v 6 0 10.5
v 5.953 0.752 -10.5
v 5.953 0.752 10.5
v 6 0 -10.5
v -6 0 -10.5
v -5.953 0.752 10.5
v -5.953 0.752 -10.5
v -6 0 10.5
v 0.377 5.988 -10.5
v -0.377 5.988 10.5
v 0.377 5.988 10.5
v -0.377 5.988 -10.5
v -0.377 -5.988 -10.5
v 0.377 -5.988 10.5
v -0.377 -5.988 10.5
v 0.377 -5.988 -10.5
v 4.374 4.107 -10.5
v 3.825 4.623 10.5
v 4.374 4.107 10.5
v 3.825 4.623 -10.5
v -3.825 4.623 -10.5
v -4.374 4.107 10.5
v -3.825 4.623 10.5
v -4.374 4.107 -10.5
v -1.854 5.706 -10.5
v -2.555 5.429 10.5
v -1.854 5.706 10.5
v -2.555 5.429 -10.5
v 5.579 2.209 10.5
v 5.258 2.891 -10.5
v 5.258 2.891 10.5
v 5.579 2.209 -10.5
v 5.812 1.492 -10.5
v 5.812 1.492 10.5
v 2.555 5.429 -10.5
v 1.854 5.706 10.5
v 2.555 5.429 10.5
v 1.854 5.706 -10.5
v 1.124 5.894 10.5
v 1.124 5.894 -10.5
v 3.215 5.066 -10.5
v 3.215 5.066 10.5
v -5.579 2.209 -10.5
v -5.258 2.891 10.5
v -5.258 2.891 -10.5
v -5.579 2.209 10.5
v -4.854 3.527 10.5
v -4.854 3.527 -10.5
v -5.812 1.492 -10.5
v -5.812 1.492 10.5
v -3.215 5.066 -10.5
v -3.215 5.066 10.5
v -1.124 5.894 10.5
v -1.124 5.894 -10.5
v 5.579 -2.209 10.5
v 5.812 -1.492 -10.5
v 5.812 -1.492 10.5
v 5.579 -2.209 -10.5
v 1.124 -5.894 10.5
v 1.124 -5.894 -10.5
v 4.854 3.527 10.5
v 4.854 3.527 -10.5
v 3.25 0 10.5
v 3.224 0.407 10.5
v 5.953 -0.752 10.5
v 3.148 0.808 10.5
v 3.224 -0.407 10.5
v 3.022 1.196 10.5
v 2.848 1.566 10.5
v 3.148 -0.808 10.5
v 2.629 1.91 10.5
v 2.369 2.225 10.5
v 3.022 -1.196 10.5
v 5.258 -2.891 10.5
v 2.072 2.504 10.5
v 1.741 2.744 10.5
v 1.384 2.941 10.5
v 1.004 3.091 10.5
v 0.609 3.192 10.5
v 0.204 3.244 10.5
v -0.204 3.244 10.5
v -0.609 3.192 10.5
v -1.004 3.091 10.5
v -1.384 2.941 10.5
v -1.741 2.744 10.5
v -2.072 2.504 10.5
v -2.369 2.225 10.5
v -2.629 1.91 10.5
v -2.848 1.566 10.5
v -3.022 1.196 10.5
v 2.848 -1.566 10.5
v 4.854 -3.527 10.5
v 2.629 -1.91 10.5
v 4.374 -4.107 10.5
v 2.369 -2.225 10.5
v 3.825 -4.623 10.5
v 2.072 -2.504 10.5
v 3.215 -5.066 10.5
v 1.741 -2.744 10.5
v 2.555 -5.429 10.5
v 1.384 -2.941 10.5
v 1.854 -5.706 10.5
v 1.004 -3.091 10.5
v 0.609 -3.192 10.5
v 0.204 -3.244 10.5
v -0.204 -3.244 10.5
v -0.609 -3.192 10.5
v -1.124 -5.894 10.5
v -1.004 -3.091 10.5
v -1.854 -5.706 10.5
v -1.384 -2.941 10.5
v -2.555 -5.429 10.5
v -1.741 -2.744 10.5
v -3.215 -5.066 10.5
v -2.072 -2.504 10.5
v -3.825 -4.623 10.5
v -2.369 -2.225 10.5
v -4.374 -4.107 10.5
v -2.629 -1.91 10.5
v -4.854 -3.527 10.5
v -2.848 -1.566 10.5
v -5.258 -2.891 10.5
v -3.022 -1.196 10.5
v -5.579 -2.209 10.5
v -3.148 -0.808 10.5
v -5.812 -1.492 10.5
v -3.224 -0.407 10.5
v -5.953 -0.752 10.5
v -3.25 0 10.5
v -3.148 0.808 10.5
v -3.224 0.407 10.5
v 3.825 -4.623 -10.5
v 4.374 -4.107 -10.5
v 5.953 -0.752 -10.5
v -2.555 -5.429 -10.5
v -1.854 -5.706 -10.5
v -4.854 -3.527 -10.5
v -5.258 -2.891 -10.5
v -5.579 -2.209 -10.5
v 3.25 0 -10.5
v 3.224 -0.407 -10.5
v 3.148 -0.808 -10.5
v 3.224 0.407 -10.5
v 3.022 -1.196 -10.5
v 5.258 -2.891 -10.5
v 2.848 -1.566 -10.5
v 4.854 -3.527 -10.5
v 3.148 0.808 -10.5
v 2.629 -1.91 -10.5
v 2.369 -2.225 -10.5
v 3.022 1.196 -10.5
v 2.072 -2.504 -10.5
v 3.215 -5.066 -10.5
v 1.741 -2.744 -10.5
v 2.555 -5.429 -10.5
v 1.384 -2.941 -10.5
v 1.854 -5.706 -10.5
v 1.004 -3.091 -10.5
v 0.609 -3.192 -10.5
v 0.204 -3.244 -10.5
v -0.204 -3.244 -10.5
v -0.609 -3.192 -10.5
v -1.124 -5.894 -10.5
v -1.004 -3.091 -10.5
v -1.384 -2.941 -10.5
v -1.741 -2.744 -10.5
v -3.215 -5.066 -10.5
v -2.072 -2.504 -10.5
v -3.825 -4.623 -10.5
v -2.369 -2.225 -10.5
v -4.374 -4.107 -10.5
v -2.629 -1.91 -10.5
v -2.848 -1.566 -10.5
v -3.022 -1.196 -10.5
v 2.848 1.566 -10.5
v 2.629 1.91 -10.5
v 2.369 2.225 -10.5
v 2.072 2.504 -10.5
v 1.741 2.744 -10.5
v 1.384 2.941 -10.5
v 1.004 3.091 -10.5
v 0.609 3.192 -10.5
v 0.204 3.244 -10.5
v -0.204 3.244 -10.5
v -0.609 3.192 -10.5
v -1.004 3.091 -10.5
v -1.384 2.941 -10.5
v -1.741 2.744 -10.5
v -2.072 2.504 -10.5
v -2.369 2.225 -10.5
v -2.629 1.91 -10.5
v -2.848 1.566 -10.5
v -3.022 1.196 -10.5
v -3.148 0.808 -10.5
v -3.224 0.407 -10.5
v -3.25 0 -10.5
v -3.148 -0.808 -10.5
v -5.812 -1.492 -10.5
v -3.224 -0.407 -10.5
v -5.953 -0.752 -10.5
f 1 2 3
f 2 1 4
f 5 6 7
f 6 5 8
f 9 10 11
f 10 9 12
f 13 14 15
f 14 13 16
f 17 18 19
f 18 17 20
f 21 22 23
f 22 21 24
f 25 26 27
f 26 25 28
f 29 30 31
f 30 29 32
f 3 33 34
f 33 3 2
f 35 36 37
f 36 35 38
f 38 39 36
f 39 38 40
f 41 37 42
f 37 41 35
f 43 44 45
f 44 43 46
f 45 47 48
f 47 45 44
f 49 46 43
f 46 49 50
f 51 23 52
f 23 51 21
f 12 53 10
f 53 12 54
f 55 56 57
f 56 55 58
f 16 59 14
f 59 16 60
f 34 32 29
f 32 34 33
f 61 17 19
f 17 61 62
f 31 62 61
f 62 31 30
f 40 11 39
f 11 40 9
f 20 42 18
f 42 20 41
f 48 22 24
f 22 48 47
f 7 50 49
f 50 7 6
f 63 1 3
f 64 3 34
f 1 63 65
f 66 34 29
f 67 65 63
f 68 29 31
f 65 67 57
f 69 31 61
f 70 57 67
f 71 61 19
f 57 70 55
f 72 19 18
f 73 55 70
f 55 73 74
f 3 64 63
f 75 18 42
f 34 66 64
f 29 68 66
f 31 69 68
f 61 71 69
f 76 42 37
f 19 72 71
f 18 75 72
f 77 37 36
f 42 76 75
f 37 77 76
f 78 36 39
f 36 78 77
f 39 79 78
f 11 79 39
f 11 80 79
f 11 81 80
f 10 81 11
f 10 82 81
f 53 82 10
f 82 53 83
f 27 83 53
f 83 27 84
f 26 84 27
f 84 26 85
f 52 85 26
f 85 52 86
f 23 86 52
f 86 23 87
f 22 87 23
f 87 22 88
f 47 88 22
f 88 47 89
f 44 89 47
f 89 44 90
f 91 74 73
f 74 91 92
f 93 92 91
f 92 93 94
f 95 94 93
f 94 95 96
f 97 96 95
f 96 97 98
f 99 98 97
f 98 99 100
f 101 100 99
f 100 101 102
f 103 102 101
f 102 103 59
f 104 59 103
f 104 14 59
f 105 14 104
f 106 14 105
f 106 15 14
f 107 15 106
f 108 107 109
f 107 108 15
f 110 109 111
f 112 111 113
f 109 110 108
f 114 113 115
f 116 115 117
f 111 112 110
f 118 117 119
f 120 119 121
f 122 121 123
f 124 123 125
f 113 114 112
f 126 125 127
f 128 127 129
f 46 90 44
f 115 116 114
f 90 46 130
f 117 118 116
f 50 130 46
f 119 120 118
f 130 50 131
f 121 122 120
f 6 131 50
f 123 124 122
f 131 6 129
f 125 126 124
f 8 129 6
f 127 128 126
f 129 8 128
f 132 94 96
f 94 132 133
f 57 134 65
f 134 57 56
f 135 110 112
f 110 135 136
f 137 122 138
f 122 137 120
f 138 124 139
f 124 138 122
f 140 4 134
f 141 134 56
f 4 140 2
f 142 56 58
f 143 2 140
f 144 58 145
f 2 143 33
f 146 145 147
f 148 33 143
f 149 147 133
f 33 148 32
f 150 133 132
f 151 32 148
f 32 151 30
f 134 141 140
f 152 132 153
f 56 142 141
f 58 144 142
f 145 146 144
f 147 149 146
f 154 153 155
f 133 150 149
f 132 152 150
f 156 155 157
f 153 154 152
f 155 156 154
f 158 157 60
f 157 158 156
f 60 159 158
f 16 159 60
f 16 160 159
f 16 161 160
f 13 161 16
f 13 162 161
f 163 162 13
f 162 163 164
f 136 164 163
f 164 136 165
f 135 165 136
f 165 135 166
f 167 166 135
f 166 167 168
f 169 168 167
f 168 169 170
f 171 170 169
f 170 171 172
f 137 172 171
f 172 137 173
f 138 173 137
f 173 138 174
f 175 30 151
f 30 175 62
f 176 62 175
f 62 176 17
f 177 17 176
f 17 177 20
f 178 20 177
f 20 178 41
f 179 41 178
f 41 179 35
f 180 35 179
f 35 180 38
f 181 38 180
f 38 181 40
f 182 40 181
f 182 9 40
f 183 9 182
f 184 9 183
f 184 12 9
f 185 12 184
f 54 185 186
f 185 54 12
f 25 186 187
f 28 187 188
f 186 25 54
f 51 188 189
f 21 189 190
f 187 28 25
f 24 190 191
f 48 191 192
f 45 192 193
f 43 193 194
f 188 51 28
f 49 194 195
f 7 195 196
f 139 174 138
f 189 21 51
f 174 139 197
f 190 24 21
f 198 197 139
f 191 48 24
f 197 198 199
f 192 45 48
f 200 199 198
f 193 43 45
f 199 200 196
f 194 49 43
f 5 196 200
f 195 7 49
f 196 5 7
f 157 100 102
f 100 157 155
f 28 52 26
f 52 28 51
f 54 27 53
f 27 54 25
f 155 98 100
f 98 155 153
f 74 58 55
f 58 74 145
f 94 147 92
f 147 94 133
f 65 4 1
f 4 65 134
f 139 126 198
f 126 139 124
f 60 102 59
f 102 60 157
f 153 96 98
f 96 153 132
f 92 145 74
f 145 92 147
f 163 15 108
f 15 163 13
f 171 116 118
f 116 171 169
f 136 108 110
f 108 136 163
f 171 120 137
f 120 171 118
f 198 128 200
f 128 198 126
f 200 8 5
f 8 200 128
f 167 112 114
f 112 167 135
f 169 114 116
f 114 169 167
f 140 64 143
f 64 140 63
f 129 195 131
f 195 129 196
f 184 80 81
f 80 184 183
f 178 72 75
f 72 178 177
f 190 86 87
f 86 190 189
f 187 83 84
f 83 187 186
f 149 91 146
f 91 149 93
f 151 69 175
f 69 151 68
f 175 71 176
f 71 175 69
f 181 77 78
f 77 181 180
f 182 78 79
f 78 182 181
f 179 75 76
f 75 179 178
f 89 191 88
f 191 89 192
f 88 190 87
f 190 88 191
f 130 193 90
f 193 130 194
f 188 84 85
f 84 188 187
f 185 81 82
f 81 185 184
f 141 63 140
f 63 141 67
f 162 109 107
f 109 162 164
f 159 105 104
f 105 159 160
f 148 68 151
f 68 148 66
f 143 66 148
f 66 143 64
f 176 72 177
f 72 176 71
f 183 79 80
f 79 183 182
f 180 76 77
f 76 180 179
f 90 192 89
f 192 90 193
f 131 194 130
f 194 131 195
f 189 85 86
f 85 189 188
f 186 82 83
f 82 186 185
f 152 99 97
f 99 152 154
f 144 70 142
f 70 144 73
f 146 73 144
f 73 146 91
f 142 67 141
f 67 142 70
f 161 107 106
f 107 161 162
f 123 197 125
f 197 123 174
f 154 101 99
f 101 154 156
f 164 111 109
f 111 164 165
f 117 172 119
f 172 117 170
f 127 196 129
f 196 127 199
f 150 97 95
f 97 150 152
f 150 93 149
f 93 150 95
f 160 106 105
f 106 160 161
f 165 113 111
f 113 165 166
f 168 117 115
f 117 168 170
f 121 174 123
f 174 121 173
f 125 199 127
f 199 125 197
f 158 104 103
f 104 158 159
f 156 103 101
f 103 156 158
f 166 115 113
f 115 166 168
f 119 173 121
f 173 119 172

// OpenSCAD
$fn = 50;


difference() {
	union() {
		translate(v = [0, 0, -10.5000000000]) {
			cylinder(h = 21, r = 6.0000000000);
		}
	}
	union() {
		translate(v = [0, 0, -100.0000000000]) {
			cylinder(h = 200, r = 3.2500000000);
		}
	}
}
